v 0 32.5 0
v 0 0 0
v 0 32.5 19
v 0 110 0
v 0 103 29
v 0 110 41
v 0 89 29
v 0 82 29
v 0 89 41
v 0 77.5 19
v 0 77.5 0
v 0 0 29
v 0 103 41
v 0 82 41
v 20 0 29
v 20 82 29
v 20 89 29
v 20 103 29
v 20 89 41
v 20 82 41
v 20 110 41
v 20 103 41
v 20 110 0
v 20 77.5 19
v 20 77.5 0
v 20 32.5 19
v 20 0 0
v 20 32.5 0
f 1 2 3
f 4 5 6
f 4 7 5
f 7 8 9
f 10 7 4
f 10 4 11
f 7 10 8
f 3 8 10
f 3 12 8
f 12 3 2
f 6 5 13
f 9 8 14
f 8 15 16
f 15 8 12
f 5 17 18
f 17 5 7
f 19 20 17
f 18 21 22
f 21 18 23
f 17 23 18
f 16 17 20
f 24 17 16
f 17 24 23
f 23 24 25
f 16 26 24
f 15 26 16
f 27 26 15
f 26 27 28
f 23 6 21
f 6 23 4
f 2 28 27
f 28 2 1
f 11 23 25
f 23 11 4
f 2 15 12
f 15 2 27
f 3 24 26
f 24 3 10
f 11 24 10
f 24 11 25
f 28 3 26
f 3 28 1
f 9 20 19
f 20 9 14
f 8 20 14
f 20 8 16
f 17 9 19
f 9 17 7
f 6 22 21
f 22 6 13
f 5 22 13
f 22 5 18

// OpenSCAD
/*
translate([-25,-55,0]) { 
  difference() {
    // cube outter
    cube([52,112,93]);
    // subtraction shape
    translate([1,1,3])
      union() {
      }
  }
}

*/


difference() {

  cube([20, 110, 29]);

  translate([-1, 32.5, -1])
  cube([60, 45, 20]);
}



// picture board is about 12.3mm thick
// TODO: add picture holders

translate([0, 82, 29])
union() {

  cube([20, 7, 12]);

  translate([0, 21, 0])
  cube([20, 7, 12]);
    
}
